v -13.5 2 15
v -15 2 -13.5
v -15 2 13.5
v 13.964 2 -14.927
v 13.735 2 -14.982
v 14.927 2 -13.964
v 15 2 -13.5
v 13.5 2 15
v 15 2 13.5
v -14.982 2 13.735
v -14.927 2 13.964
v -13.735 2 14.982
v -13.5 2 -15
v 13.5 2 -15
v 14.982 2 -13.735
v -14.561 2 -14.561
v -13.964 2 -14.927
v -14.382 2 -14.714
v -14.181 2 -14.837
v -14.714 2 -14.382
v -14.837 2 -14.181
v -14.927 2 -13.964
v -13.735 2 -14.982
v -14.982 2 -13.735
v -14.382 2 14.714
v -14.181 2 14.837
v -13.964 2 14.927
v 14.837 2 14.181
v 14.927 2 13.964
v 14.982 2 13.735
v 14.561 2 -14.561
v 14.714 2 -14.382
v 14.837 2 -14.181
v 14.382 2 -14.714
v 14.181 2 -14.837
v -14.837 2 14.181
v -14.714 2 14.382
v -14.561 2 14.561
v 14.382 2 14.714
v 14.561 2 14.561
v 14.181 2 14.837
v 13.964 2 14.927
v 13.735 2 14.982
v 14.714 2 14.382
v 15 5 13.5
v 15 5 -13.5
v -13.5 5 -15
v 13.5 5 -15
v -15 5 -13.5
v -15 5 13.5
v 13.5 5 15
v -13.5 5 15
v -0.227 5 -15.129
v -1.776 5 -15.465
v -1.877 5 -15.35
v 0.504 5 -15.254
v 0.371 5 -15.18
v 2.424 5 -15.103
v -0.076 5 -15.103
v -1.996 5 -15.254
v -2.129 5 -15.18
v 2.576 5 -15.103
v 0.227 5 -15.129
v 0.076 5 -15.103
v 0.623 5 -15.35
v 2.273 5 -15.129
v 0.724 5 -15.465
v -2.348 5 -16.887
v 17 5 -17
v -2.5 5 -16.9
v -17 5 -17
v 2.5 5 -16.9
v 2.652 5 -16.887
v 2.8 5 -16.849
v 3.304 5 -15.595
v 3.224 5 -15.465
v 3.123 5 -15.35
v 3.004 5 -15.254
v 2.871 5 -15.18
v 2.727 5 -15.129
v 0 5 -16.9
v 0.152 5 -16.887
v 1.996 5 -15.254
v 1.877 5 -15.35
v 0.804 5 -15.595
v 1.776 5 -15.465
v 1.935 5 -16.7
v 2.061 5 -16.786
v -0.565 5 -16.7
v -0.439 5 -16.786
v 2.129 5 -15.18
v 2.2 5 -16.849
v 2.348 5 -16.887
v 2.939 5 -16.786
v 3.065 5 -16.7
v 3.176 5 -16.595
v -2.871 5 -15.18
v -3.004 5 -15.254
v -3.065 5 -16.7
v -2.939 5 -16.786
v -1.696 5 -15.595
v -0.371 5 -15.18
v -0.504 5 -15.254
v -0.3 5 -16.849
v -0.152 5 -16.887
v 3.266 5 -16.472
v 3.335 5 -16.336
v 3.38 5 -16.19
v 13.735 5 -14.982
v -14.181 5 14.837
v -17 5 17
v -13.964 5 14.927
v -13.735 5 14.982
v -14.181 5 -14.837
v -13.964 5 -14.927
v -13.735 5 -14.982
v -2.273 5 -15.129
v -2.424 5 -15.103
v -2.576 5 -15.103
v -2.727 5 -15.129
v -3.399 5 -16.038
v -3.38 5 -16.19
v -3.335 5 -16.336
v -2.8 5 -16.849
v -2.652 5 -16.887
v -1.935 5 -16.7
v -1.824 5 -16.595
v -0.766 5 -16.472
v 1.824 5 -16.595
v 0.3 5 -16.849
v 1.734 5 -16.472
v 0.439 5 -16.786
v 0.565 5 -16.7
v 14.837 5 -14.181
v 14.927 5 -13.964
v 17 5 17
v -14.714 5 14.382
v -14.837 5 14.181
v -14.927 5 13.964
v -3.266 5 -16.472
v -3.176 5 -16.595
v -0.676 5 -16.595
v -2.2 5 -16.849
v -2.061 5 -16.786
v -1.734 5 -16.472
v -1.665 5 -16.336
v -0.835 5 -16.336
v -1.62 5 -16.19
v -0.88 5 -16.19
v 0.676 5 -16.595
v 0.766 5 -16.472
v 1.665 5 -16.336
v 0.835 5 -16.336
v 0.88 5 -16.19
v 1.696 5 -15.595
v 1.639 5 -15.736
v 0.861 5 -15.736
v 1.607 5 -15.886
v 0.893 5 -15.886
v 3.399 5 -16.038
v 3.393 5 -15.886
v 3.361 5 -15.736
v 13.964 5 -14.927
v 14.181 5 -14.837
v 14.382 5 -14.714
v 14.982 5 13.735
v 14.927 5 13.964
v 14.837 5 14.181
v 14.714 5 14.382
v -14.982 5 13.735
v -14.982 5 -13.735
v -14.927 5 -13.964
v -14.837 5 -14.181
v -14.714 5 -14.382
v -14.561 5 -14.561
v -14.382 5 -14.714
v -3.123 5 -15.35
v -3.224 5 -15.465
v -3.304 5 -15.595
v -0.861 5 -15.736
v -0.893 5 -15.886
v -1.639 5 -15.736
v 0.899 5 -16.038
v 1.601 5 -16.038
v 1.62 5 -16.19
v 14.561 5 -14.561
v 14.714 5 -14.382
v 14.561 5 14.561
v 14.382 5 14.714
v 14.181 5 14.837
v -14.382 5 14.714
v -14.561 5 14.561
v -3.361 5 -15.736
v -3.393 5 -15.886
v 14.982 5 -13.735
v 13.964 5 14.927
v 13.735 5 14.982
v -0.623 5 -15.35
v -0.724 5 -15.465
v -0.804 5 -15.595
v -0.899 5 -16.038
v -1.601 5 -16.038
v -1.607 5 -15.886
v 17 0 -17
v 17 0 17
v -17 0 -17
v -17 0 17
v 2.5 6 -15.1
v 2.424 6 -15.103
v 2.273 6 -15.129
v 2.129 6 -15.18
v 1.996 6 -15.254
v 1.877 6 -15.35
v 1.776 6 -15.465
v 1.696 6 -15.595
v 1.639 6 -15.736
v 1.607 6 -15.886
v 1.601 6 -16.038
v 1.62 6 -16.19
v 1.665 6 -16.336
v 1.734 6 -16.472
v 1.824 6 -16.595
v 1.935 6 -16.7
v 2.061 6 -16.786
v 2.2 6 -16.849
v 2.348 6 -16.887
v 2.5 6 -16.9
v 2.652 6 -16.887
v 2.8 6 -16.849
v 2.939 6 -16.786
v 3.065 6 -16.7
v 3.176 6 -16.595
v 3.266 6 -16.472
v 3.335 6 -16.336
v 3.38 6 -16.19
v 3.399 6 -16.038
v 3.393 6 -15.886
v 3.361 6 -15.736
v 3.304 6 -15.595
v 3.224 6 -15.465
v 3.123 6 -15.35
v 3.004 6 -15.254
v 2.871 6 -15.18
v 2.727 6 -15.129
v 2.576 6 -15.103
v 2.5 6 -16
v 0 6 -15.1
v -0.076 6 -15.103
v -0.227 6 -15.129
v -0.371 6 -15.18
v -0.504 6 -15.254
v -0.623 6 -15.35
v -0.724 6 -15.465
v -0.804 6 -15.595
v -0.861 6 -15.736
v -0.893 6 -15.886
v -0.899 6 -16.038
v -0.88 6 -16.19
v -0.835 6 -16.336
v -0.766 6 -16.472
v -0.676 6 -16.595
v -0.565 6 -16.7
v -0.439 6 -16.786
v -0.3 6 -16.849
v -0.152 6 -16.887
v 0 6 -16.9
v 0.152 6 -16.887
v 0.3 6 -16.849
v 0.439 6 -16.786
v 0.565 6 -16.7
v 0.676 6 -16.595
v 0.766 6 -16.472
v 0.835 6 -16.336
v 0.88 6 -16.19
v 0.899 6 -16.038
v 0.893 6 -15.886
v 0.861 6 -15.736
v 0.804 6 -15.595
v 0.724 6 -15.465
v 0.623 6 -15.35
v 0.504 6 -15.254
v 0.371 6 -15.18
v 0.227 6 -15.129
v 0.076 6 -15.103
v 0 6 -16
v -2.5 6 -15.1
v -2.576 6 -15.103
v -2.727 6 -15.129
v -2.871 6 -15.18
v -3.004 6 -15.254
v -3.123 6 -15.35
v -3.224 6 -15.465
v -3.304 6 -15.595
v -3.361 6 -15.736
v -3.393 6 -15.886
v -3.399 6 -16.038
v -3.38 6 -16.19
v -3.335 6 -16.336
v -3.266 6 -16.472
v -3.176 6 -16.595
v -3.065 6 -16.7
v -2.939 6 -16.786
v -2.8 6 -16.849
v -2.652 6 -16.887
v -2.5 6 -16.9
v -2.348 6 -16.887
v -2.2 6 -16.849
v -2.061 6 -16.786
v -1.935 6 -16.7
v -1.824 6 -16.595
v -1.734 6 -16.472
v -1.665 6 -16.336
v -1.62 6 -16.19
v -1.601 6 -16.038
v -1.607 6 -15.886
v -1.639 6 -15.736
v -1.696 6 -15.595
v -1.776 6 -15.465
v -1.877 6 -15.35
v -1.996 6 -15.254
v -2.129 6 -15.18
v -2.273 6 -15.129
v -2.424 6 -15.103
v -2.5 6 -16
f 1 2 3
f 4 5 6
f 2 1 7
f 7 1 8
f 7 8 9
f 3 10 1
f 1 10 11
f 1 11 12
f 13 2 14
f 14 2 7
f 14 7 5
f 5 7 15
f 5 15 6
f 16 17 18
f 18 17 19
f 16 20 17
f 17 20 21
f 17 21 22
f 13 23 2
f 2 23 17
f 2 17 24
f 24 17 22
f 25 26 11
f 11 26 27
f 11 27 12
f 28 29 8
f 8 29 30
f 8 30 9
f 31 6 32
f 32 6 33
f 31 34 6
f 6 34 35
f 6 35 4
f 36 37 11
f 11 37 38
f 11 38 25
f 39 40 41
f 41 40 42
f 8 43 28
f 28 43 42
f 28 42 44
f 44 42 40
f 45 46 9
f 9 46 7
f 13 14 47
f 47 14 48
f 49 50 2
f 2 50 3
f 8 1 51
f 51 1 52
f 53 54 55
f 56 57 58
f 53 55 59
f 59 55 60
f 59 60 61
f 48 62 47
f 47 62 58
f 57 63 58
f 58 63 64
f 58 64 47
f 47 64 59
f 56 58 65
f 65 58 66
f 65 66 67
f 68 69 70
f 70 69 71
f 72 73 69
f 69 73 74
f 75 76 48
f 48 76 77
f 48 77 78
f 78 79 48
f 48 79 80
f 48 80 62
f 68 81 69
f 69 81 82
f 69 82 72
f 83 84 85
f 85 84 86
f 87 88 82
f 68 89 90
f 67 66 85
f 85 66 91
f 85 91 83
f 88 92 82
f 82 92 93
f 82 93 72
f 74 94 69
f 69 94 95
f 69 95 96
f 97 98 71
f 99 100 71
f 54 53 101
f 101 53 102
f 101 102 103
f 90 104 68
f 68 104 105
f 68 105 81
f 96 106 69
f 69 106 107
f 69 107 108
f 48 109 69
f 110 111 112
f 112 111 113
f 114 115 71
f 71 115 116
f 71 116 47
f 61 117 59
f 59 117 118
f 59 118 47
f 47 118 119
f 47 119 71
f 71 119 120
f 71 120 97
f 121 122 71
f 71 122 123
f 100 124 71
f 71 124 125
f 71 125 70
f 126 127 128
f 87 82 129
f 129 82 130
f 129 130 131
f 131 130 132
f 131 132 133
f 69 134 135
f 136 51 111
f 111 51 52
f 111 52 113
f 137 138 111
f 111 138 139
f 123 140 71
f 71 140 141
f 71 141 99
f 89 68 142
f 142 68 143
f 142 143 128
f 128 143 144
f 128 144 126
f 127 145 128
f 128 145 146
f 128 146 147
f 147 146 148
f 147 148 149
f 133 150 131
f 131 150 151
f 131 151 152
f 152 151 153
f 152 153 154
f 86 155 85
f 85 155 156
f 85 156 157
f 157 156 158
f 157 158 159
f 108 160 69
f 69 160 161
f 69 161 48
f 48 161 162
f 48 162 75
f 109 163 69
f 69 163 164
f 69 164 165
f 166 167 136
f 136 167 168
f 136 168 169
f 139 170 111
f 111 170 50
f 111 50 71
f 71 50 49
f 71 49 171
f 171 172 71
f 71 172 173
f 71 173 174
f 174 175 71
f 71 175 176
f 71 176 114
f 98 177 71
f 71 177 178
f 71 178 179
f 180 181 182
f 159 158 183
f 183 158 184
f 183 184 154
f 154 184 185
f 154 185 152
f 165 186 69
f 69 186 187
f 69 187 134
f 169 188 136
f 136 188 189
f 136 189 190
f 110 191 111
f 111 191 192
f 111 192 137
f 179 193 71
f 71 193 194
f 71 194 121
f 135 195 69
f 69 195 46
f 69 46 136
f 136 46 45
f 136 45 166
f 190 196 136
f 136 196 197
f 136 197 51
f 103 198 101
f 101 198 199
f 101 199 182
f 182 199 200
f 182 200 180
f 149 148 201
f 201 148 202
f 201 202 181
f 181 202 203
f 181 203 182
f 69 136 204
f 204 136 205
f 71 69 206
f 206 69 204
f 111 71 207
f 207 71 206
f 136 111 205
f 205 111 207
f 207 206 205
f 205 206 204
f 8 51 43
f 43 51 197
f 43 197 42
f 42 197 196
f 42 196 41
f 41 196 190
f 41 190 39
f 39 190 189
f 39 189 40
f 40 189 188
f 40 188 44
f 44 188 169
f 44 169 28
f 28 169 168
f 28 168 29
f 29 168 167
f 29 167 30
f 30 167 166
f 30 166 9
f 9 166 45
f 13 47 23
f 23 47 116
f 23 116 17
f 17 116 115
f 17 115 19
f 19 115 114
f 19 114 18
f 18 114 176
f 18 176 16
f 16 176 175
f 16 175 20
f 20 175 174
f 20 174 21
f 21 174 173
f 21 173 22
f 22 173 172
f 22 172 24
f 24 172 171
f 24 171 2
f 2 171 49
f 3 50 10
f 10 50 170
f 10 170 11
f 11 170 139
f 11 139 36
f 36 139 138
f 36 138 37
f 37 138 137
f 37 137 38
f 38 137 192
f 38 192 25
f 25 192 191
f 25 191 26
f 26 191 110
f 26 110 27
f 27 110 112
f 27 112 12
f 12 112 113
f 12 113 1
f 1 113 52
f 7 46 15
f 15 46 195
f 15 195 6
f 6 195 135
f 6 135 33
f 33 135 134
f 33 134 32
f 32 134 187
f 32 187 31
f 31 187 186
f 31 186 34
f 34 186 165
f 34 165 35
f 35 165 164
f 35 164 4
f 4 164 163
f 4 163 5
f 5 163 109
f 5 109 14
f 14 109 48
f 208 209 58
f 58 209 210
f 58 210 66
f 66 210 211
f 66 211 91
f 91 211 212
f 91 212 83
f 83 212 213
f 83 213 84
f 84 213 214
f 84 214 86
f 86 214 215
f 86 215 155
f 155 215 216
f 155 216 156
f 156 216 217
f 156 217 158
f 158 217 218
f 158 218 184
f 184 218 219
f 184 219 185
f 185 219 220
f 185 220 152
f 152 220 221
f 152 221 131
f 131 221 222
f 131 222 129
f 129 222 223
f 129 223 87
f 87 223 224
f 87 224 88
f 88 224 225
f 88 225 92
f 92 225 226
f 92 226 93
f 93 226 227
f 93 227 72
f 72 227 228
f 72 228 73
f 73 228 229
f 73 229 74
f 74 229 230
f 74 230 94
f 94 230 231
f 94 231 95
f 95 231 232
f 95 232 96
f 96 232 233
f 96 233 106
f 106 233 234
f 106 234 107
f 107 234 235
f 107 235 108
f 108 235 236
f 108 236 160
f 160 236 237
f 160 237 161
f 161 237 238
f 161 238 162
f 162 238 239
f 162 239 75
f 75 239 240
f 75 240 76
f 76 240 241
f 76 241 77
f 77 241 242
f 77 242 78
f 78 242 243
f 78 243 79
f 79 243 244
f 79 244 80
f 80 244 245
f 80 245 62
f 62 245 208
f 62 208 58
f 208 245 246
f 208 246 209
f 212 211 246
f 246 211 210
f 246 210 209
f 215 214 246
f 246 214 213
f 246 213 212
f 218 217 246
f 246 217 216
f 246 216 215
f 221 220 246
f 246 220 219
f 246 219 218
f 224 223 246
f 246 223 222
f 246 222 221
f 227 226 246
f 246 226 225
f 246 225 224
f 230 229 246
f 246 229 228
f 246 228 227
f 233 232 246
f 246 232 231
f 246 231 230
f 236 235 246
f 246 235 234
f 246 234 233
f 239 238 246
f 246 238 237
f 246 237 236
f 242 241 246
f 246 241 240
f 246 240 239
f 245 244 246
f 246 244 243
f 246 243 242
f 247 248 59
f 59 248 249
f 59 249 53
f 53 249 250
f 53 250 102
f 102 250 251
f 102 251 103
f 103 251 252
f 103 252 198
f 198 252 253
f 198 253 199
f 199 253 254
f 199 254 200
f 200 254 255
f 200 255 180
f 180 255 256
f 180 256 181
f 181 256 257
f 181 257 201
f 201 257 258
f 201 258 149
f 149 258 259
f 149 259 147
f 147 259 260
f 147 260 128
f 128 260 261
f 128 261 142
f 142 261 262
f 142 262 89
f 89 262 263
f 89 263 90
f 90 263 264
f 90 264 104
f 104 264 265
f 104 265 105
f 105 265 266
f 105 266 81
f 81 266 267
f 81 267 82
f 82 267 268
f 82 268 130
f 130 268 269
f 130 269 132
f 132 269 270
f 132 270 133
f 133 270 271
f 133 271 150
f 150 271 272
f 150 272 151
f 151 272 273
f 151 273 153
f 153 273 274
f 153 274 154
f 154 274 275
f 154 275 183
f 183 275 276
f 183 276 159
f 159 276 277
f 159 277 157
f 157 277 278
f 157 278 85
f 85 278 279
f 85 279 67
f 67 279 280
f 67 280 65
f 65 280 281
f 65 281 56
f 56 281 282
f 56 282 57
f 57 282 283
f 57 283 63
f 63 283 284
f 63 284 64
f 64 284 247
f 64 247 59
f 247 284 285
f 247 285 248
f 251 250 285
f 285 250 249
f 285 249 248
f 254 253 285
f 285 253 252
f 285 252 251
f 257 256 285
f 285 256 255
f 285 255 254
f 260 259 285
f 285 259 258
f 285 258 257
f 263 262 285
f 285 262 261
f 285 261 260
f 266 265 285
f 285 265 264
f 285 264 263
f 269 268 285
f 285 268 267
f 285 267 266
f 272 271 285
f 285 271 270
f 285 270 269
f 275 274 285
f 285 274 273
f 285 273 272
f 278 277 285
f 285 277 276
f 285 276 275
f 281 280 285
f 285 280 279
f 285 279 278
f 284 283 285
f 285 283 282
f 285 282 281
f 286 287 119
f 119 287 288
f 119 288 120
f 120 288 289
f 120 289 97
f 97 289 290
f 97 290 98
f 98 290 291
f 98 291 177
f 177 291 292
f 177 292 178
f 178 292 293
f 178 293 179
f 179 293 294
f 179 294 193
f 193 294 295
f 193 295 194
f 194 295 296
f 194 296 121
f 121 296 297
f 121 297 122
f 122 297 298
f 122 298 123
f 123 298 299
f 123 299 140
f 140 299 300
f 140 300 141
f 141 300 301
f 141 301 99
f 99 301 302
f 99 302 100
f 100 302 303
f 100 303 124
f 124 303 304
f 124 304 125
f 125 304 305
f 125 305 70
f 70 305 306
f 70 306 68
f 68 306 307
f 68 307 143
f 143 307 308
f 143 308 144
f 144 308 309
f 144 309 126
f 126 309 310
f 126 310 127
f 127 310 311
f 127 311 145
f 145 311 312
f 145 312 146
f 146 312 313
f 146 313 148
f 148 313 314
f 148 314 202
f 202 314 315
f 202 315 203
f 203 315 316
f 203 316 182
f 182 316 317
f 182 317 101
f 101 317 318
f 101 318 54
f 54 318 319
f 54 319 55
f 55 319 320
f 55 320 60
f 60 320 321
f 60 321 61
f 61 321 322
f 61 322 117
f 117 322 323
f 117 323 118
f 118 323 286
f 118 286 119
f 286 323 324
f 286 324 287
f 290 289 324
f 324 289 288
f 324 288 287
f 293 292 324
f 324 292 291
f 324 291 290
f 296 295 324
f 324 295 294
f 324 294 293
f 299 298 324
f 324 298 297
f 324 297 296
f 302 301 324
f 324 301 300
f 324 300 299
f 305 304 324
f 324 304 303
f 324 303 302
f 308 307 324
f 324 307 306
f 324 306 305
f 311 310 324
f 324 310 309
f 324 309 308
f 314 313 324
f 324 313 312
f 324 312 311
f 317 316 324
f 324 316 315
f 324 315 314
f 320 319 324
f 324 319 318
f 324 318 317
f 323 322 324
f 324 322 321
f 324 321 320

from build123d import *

# Parameters (mm, degrees)
SKETCH1_W           = 30
SKETCH1_H           = 30
BOSS_EXTRUDE2_DEPTH = 2
SKETCH1_6_W         = 34
SKETCH1_6_H         = 34
SKETCH1_6_W_2       = 30
SKETCH1_6_H_2       = 30
BOSS_EXTRUDE3_DEPTH = 5
FILLET1_R           = 1.5
SKETCH2_R           = 0.9
BOSS_EXTRUDE4_DEPTH = 1


with BuildPart() as part:
    # Sketch1 → Boss-Extrude2 (new body)
    with BuildSketch(Plane(origin=(0, 0, 0), x_dir=(1, 0, 0), z_dir=(0, 1, 0))):
        Rectangle(SKETCH1_W, SKETCH1_H)
    extrude(amount=BOSS_EXTRUDE2_DEPTH)

    # Sketch1<6> → Boss-Extrude3 (add)
    with BuildSketch(Plane(origin=(0, 0, 0), x_dir=(1, 0, 0), z_dir=(0, 1, 0))):
        Rectangle(SKETCH1_6_W, SKETCH1_6_H)
        Rectangle(SKETCH1_6_W_2, SKETCH1_6_H_2, mode=Mode.SUBTRACT)
    extrude(amount=BOSS_EXTRUDE3_DEPTH)

    # Fillet1
    fillet1_edges = [part.edges().sort_by_distance(p)[0] for p in [
        (15, 3.5, -15),
        (-15, 3.5, -15),
        (-15, 3.5, 15),
        (15, 3.5, 15),
    ]]
    fillet(fillet1_edges, radius=FILLET1_R)

    # Sketch2 → Boss-Extrude4 (add)
    with BuildSketch(Plane(origin=(0, 5, 0), x_dir=(1, 0, 0), z_dir=(0, 1, 0))):
        with Locations((0, 16)):
            Circle(SKETCH2_R)
        with Locations((2.5, 16)):
            Circle(SKETCH2_R)
        with Locations((-2.5, 16)):
            Circle(SKETCH2_R)
    extrude(amount=BOSS_EXTRUDE4_DEPTH)


solid = part.part
